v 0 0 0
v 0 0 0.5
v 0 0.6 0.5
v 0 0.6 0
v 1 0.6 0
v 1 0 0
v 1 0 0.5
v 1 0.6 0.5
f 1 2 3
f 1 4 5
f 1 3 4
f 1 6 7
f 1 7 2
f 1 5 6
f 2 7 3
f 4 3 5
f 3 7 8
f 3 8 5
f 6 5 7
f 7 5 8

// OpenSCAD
/* Warning, this is a very basic generator with a lot of approximation 
input data : [XDFN, 3RW, 1.0x0.6x0.5mm, 2, , A, C04-00570A]
generated by com.zoubworld.electronics.cad.model3d.Basic
Date : Sun Feb 15 10:50:49 CET 2026
*/

//body
color("black")
translate([0,0,0])
cube([1.0,0.6,0.5], center=false);
